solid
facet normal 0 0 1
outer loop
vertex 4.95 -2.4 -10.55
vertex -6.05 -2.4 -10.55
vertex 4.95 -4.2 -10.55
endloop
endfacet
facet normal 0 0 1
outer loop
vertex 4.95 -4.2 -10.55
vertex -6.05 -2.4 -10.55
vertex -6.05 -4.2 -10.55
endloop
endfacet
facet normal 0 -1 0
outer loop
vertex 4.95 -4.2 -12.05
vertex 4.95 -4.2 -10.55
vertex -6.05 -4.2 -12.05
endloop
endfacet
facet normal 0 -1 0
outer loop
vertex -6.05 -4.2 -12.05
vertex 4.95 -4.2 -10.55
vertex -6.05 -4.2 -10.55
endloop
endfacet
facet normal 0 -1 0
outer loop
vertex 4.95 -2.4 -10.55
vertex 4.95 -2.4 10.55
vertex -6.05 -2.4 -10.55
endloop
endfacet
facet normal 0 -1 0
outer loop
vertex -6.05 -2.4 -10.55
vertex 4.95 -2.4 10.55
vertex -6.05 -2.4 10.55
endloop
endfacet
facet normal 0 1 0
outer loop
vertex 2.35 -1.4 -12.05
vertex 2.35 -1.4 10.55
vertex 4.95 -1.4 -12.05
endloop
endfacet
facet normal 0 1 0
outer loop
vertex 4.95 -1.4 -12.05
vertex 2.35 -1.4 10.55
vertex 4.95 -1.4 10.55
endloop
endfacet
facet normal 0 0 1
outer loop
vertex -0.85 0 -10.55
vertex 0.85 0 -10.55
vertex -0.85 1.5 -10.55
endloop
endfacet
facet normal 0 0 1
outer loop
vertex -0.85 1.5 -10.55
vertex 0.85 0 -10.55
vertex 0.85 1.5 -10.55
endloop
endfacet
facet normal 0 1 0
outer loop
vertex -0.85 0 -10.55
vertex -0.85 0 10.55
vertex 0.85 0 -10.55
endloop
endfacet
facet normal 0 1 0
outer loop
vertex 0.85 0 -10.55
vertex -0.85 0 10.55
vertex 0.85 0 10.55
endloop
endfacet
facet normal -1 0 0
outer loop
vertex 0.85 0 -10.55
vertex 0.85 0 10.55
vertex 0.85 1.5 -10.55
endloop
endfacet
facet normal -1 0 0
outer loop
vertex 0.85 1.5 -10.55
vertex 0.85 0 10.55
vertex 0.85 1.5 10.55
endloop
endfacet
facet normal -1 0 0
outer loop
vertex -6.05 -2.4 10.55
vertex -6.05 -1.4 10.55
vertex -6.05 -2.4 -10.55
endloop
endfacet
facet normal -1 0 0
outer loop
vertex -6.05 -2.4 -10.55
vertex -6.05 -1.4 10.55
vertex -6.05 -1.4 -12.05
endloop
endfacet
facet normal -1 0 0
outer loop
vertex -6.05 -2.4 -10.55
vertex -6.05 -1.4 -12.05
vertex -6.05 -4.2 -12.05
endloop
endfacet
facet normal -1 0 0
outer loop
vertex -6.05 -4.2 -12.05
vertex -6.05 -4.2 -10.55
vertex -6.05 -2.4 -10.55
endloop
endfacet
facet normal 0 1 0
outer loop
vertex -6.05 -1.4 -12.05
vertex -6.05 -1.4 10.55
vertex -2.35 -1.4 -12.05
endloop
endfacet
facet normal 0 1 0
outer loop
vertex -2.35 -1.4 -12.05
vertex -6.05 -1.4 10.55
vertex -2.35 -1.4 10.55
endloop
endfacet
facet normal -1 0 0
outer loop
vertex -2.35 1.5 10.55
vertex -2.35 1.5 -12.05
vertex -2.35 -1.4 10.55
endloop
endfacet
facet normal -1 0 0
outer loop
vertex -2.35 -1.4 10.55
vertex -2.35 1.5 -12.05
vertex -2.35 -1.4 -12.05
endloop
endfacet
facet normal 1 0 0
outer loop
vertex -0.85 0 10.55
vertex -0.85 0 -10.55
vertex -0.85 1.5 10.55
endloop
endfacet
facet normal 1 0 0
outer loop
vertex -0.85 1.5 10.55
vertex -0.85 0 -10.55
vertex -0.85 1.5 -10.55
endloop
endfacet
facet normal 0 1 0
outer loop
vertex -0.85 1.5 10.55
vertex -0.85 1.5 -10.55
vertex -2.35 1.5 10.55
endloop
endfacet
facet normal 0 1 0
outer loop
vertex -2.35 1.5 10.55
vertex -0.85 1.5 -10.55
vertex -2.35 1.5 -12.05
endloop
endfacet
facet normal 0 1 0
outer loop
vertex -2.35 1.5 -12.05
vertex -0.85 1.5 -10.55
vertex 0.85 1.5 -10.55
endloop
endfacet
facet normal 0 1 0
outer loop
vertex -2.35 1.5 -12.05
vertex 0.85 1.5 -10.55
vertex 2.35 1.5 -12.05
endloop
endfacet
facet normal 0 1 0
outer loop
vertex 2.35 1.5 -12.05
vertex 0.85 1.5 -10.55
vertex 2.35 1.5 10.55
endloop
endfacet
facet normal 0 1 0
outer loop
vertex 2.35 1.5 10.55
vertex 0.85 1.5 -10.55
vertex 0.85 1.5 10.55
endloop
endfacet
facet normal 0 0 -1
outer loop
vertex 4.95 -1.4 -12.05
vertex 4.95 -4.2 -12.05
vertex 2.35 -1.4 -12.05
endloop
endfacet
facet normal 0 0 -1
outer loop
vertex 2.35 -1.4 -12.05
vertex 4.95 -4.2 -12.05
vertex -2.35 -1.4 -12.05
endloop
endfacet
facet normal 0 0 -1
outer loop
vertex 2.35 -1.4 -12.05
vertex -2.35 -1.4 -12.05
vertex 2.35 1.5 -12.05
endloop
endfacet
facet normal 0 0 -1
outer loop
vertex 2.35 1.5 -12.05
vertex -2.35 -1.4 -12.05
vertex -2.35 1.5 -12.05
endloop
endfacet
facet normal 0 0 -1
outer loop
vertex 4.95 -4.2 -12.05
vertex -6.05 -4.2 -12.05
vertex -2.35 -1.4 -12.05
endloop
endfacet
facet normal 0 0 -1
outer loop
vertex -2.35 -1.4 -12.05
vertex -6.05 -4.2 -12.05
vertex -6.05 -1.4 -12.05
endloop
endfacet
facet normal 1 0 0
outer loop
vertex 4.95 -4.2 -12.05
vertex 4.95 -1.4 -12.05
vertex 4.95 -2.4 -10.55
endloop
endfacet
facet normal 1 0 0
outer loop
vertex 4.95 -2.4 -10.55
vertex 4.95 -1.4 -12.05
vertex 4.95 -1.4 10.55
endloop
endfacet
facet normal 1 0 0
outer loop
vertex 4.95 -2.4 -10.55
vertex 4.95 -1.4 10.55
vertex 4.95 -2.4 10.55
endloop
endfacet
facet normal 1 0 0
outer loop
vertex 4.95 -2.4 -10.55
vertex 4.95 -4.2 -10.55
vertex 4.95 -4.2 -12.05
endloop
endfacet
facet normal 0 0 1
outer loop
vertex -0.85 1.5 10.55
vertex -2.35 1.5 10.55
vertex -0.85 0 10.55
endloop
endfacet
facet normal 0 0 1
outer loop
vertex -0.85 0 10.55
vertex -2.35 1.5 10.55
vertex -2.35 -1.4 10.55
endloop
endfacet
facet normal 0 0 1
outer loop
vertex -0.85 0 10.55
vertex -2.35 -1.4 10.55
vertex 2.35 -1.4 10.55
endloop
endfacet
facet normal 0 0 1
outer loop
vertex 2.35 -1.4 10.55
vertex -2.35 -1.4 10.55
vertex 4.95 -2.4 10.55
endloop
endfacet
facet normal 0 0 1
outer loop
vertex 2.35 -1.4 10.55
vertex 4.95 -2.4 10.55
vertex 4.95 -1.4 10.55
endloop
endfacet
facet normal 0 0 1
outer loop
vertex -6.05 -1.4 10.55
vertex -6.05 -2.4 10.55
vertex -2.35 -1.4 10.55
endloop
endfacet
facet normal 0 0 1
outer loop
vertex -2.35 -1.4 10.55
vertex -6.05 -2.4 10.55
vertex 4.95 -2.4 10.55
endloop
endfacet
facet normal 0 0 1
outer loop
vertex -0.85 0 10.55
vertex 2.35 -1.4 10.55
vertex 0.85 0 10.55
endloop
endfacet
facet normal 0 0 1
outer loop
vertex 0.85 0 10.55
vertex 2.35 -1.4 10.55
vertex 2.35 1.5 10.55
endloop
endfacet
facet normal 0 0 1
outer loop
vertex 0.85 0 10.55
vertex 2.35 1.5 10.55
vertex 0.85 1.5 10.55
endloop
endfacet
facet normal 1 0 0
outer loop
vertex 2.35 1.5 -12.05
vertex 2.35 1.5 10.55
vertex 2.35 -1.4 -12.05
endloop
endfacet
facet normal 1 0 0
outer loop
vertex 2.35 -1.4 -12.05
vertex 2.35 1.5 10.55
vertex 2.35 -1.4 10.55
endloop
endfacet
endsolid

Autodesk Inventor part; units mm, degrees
ref_plane "YZ Plane" through (0, 0, 0) normal (1, 0, 0) x (0, 1, 0)
ref_plane "XZ Plane" through (0, 0, 0) normal (0, 1, 0) x (-1, 0, 0)
ref_plane "XY Plane" through (0, 0, 0) normal (0, 0, 1) x (1, 0, 0)
sketch "Sketch1" plane through (0, 0, 0) normal (0, 1, 0) x (-1, 0, 0)
  line L0 (0.85, 10.55) -> (-0.85, 10.55)
  line L1 (-0.85, 10.55) -> (-0.85, -10.55)
  line L2 (-0.85, -10.55) -> (0.85, -10.55)
  line L3 (0.85, -10.55) -> (0.85, 10.55)
  line L4 (0.85, 10.55) -> (-0.85, -10.55) construction
  line L5 (-0.85, 10.55) -> (0.85, -10.55) construction
  line L6 (2.35, 12.05) -> (-2.35, 12.05)
  line L7 (-2.35, 12.05) -> (-2.35, -12.05)
  line L8 (-2.35, -12.05) -> (2.35, -12.05)
  line L9 (2.35, -12.05) -> (2.35, 12.05)
  point P0 (0, 0)
  dimension "d0" = 1.7
  dimension "d1" = 21.1
  dimension "d2" = 1.5
extrude "Extrusion1" add sketch "Sketch1" along normal blind 1.5
sketch "Sketch2" plane through (0, 0, 0) normal (0, -1, 0) x (1, 0, 0)
  line L0 (4.95, 12.05) -> (-6.05, 12.05)
  line L1 (-6.05, 12.05) -> (-6.05, -12.05)
  line L2 (-6.05, -12.05) -> (4.95, -12.05)
  line L3 (4.95, -12.05) -> (4.95, 12.05)
  line L4 (-2.35, 12.05) -> (2.35, 12.05) projected
  line L5 (-2.35, -12.05) -> (-2.35, 12.05) projected
  dimension "d5" = 11
  dimension "d6" = 3.7
extrude "Extrusion2" add sketch "Sketch2" along normal blind 2.4
sketch "Sketch3" plane through (0, 0, 0) normal (0, 1, 0) x (1, 0, 0)
  line L0 (-2.35, 12.05) -> (-2.35, -12.05) projected
  line L1 (-6.05, 12.05) -> (-2.35, 12.05) projected
  line L2 (-6.05, -12.05) -> (-6.05, 12.05) projected
  line L3 (-2.35, -12.05) -> (-6.05, -12.05) projected
  line L4 (2.35, -12.05) -> (2.35, 12.05) projected
  line L5 (4.95, -12.05) -> (2.35, -12.05) projected
  line L6 (4.95, 12.05) -> (4.95, -12.05) projected
  line L7 (2.35, 12.05) -> (4.95, 12.05) projected
  point P0 (0, 0)
extrude "Extrusion3" cut sketch "Sketch3" against normal blind 1.4
move faces "Move1" translate (0, 0, -1.5) faces at (0.7833, 0.5333, 12.05)
sketch "Sketch4" plane through (0, -2.4, 0) normal (0, -1, 0) x (1, 0, 0)
  line L0 (-0.85, -10.55) -> (0.85, -10.55) projected
  line L1 (-6.05, 10.55) -> (-6.05, -12.05) projected
  line L2 (2.35, -12.05) -> (4.95, -12.05) projected
  line L3 (-6.05, -10.55) -> (4.95, -10.55)
  line L4 (4.95, -10.55) -> (4.95, -12.05)
  line L5 (4.95, -12.05) -> (-6.05, -12.05)
  line L6 (-6.05, -12.05) -> (-6.05, -10.55)
  point P0 (0, 0)
extrude "Extrusion4" add sketch "Sketch4" along normal blind 1.8
properties part number "gyro_holder"
